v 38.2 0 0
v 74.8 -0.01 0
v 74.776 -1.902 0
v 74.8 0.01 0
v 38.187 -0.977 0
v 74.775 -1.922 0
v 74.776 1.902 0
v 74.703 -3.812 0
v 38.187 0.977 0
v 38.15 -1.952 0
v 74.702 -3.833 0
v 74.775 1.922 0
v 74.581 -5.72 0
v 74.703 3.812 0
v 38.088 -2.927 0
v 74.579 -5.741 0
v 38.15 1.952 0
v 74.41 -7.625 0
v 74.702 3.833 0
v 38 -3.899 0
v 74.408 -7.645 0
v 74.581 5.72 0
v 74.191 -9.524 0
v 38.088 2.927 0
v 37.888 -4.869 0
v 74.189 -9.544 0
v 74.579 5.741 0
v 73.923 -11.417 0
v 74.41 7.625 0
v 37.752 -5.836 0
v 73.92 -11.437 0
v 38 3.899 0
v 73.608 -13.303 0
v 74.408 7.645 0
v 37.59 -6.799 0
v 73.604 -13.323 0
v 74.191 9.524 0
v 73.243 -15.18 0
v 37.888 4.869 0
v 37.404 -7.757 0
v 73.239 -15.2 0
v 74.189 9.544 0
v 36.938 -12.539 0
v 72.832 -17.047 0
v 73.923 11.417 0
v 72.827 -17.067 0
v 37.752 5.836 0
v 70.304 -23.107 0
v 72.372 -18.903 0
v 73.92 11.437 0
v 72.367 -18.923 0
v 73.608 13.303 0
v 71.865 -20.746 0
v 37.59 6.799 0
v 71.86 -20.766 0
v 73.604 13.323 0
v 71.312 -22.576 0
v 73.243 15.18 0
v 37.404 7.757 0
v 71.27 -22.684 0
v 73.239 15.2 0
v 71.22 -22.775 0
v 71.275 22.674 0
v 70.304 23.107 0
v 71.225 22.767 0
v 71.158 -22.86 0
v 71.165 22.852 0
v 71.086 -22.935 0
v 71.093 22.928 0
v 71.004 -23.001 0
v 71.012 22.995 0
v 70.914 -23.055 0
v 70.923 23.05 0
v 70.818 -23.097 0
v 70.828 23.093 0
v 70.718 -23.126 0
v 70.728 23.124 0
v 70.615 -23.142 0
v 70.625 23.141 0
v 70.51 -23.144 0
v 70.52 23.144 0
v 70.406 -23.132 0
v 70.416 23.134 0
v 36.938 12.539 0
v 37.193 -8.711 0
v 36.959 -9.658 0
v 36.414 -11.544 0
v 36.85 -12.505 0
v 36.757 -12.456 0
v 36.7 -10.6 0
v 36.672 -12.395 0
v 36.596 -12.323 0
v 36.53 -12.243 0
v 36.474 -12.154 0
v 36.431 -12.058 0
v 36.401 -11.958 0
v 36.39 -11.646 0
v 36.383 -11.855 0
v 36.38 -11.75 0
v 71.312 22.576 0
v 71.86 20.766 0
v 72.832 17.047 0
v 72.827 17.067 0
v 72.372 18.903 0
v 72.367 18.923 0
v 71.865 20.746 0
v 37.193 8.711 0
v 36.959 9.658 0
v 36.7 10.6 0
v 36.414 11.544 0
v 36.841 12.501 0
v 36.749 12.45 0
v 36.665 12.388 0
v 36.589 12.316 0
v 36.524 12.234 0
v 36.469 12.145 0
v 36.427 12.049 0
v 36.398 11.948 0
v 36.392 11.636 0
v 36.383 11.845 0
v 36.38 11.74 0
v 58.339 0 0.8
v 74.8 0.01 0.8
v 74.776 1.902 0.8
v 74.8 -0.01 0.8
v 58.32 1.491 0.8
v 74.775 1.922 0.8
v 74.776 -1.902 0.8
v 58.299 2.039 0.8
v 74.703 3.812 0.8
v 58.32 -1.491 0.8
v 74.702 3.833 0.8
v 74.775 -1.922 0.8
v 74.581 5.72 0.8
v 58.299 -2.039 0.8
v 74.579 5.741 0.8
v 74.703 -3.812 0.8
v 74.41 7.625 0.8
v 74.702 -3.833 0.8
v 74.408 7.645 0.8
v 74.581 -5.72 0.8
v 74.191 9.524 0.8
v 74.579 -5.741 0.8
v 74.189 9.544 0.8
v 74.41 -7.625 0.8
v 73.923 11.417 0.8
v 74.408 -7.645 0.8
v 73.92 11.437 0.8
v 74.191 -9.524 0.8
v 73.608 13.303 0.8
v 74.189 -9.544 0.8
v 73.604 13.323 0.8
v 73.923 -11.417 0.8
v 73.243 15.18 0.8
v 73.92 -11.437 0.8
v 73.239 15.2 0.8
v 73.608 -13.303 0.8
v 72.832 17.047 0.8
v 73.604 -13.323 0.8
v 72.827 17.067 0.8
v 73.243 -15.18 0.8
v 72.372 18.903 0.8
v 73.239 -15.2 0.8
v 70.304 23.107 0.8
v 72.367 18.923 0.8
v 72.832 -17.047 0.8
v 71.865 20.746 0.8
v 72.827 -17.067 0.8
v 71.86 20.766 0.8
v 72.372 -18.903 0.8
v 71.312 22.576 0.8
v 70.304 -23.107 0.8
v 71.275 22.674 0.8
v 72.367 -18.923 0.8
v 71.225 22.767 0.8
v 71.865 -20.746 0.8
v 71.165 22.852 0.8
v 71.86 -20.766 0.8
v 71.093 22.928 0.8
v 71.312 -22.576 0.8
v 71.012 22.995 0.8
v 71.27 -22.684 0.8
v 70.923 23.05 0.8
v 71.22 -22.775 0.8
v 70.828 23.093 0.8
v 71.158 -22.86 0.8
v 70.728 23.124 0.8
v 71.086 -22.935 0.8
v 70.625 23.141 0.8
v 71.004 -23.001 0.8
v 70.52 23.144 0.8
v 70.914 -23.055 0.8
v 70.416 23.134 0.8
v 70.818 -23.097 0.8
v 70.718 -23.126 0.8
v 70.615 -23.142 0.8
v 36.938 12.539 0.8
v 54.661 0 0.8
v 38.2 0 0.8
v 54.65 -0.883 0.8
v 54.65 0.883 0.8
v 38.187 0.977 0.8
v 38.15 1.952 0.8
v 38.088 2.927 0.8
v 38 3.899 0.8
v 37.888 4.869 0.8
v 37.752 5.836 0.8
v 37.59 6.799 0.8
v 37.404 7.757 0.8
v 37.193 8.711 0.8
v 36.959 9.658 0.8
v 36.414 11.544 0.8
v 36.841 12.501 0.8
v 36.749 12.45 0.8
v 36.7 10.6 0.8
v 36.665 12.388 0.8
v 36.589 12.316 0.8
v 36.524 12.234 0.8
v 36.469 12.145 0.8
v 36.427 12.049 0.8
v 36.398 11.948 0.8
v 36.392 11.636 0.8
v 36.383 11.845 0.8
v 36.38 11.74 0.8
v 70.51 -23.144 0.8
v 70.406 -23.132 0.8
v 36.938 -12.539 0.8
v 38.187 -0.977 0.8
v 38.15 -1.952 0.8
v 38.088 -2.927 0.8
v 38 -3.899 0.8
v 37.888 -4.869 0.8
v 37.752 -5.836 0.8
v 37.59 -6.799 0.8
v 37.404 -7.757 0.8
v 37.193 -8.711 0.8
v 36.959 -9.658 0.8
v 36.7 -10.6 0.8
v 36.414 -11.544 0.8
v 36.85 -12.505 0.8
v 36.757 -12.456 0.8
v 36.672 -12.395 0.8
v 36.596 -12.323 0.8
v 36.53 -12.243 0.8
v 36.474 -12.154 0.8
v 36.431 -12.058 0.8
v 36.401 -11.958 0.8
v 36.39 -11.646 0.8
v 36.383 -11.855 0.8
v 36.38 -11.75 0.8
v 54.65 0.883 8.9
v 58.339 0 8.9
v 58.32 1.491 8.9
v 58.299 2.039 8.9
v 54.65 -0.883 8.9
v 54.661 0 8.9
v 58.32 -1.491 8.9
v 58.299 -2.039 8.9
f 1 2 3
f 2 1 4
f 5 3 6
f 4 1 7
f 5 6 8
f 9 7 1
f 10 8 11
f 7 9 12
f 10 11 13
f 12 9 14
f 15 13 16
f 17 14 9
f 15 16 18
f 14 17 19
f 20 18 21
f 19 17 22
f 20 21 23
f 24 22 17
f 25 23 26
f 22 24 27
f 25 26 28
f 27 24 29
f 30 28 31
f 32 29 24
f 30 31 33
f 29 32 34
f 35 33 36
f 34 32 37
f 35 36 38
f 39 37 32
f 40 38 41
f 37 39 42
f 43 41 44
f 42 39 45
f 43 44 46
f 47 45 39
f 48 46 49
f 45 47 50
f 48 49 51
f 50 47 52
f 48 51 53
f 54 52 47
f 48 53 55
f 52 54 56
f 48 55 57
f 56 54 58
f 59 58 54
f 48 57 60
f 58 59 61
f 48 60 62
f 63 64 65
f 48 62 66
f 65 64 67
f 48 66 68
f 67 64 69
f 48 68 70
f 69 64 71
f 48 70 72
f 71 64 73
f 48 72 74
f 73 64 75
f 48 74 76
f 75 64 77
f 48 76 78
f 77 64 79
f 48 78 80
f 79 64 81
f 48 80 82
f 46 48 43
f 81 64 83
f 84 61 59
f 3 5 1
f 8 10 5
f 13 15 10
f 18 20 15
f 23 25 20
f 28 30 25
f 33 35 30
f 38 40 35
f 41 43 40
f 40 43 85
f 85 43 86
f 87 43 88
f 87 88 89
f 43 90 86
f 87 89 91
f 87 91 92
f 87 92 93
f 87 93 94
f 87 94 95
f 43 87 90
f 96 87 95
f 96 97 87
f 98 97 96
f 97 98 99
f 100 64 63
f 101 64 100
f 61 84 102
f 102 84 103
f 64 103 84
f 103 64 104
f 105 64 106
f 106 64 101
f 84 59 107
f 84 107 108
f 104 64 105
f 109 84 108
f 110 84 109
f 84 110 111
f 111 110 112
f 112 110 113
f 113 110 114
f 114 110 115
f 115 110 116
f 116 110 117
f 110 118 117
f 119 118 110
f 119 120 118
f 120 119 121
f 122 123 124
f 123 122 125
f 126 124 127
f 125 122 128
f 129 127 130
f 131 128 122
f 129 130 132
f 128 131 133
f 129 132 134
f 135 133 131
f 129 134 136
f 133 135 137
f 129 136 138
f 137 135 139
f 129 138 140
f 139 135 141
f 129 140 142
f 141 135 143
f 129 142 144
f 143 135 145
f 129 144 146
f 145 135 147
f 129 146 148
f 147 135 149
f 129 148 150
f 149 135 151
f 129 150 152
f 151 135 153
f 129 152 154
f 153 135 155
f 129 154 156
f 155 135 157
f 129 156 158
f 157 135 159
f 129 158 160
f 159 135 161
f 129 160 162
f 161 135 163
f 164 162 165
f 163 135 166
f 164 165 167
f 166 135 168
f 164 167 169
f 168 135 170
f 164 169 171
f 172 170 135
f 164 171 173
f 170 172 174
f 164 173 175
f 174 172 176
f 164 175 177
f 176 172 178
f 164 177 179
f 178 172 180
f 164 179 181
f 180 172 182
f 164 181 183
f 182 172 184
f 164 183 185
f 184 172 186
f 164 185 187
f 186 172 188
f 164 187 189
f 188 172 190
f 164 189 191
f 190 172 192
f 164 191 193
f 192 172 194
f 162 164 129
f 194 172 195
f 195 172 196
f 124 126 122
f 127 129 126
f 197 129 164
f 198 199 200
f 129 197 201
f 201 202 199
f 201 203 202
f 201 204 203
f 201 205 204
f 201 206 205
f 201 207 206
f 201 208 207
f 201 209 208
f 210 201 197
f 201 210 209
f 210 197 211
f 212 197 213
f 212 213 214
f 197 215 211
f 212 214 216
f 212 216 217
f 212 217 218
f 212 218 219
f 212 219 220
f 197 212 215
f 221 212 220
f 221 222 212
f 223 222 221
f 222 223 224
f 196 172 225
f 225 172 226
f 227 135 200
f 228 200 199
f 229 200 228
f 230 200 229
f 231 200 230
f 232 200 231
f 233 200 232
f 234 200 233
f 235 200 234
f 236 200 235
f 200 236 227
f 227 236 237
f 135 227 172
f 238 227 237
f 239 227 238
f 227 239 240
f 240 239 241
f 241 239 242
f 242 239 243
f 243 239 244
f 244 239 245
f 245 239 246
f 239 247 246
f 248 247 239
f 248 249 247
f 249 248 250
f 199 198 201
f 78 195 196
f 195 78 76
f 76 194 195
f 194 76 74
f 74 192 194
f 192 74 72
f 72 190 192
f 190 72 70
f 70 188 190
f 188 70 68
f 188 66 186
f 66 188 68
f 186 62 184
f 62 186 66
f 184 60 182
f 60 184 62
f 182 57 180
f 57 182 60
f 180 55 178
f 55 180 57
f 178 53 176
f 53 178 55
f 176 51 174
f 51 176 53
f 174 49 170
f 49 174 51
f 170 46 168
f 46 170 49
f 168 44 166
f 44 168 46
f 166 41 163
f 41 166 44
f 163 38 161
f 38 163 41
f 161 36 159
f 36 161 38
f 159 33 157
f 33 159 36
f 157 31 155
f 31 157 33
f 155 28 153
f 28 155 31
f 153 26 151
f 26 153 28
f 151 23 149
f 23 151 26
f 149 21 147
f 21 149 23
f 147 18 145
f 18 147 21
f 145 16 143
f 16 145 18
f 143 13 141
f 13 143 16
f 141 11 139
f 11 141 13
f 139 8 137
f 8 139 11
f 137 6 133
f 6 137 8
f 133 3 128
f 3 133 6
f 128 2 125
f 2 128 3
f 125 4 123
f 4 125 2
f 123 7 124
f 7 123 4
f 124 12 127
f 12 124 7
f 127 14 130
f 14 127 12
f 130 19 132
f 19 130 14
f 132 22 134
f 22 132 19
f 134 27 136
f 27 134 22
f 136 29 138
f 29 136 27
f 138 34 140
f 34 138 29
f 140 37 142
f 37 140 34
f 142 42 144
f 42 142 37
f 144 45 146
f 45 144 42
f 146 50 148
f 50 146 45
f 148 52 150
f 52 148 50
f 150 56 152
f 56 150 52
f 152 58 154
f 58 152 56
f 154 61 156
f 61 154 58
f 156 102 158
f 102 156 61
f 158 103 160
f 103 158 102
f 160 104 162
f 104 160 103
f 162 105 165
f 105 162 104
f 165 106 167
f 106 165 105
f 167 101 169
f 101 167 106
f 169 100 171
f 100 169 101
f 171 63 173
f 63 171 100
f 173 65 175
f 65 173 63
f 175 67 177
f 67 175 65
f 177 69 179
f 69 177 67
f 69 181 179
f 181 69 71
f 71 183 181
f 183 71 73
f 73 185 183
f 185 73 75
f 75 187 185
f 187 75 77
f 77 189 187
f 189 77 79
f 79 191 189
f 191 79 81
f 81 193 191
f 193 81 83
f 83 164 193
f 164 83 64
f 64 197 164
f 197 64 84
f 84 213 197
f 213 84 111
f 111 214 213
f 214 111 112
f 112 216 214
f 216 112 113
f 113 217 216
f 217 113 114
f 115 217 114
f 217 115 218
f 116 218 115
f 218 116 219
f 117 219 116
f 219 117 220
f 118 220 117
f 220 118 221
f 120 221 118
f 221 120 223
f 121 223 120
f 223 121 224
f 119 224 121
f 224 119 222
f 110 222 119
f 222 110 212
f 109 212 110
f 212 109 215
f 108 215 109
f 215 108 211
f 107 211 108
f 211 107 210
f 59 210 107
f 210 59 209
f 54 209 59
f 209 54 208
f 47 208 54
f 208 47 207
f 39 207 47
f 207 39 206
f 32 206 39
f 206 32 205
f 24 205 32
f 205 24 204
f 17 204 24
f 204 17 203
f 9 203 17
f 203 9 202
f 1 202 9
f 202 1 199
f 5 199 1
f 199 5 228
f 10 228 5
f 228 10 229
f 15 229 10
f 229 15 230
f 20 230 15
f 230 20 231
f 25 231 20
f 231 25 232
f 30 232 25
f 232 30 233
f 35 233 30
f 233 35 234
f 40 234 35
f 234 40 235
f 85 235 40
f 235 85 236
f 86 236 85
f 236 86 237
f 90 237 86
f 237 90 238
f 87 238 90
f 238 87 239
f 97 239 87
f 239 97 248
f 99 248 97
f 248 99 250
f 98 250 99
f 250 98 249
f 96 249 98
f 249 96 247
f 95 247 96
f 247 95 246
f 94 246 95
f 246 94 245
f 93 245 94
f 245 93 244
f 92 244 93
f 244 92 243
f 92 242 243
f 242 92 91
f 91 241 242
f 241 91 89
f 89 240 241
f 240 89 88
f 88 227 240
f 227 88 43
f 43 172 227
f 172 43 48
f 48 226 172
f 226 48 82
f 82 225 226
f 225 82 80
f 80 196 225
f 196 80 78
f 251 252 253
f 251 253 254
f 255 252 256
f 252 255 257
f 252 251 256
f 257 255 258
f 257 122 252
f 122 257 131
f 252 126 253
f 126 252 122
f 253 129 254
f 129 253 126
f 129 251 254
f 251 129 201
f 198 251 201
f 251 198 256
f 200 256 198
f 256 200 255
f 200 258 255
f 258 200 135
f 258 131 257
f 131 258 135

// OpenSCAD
// file: parameters.scad
// =============================================================================
// Gen-BV — nightly 2026-10-10 (physics_scorer, honest magpylib watts)
// Fewer, wider-spaced poles: 6 Ø20 per rotor (12 of the 16) on an R57 ring over nine 35.2° bobbins (r 39–74 mm, 15.7 mm build). Wider pole pitch means less pole-to-pole leakage and bigger coils, but the electrical frequency drops 25 % and 4 Ø20 sit idle; diametric Ø5 assists lowered the score here, so none are fitted. The scorer puts it at about 62 % of Gen-BR.
// Clocking 0 deg (magnets N facing S) + D-flat keyed bore + index notch + flip-symmetric hole map.
// Windable 2-piece bobbin; turns = physics_scorer turns_fit; copper only between flanges.
// Steel back-iron: 2× Ø142 × 4.76 mm (3/16") mild-steel discs (steel_backiron_disc.dxf); magnets sit ON the steel
// (through-pockets) -> score with --back-iron. Night 2026-10-10.
// =============================================================================
topology            = "dual_rotor";

// --- Wire / winding (physics_scorer winding-fit) -------------------------------
wire_awg            = 26;
wire_od             = 0.45;     // insulated OD mm (bare 0.405)
fill_realistic      = 0.65;     // insulated-wire area / window (DENSE layered wind with a jig; scorer cap 0.65)
turns               = 518;       // = physics_scorer turns_fit (do NOT raise)
coil_former_type    = "bobbin";
coil_core_inset     = 15.66;     // radial copper build: hub = copper boundary inset by this
wind_build_axial    = 0.0;      // nothing proud of the flanges
wind_build_radial   = 0.0;

// --- Bobbin (base + lid) ---------------------------------------------------------
coil_id_r           = 39.00;    // copper boundary sector
coil_od_r           = 74.00;
span_deg            = 35.15;    // = pitch - 2*asin((wall+0.85)/coil_id_r) -> >=1.2 mm stator web
former_web          = 8.10;     // copper height between flanges (TALL copper: steel keeps Bz up)
flange_t            = 0.80;     // >= 0.8 mm FDM wall rule (tall winds push on the flanges)
wall                = 0.80;     // flange lip beyond copper
former_bare_h       = former_web + 2 * flange_t;
coil_envelope_h     = former_bare_h + 2 * wind_build_axial;
tab_w               = 7.0;
tab_len             = 7.0;
tab_h               = former_bare_h / 2;
pin_d               = 1.9;      // 1.75 mm filament locating pin
coil_mount_r        = coil_od_r + 0.2 + 4.0;
lead_y              = 1.6;
lead_slot_w         = 0.9;
lead_groove_d       = 0.6;

// --- Gap -------------------------------------------------------------------------
run_clear           = 0.50;     // rotor face -> flange
gap_spacer_h        = run_clear + wind_build_axial;
m2m                 = coil_envelope_h + 2 * run_clear;   // rotor face to rotor face (= gap_sleeve length)

// --- Stator ----------------------------------------------------------------------
coil_stations       = 9;
bay_clear           = 0.25;
stator_thick        = former_bare_h;                        // bobbins flush both faces
stator_od           = 166;
shaft_clear_stator  = 14.0;     // stator is static; gap sleeve OD 12 spins inside

// --- Rotor(s) --------------------------------------------------------------------
magnet_Br           = 1.43;     // N52
magnet_d_large      = 20.0;
magnet_h_large      = 5.0;      // one O20x5 per pocket
magnet_h_small      = 5.0;      // unused: no O5 pockets in this kit
halbach_magnetisation = "none";  // NO O5 assist magnets in this kit (scan: they lower the 4-pole score)
rotor_b_same_axis   = true;     // same-index magnets share one axis: N faces S across the gap
large_pocket_d      = 20.3;
small_pocket_d      = 5.3;
pocket_h            = 5.00;     // THROUGH the carrier: magnet back face sits on the steel disc (FLUSH seat: carrier = magnet height, magnet face level with the rotor face)
large_n             = 6;
R_large             = 57.0;
small_r_list        = [];       // no O5 pockets
carrier_od          = 142.0;
carrier_thick       = pocket_h;
hub_h               = 12.0;     // > steel_t + insert: radial set-screw clears the steel
hub_od              = 24.0;     // slim hub so the M4 brace rods fit at R~18 inside the coil ring
hub_insert_d        = 4.0;      // M3 heat-set insert, radial, bears on the D-flat
rotor_b_offset_deg  = 0.0;      // CLOCKING: magnets directly opposite
shaft_key           = "dflat";
dflat_depth         = 0.5;      // 8 mm shaft with 0.5 mm flat (7.5 across flat)
index_notch_d       = 3.0;

// --- Steel back-iron (buyable laser-cut) -------------------------------------------
steel_t             = 4.76;      // mild steel thickness (image method ignores it; sized from steel_flux.py so the return path stays well below saturation)
steel_center_hole   = 26.0;     // slips over the rotor hub (OD 24)
steel_od            = carrier_od;   // steel disc OD = rotor carrier OD

// --- Modular MAX interface ----------------------------------------------------------
shaft_bore          = 8.35;
dflat_x             = 4.0 - dflat_depth + (shaft_bore - 8.0) / 2;
bearing_d           = 21.85;
bearing_h           = 7.2;
m3_clear            = 3.5;
bolt_r_inner        = 30.0;     // M3 steel-disc clamp bolts (inside the magnet ring)
bolt_n_inner        = 4;
bolt_inner_angles   = [0, 90, 180, 270];
bolt_r_outer        = 66.0;     // second M3 steel-disc clamp ring
bolt_outer_angles   = [15, 165, 195, 345];
flange_bolt_r       = 77.0;     // frame rods: OUTSIDE the rotor OD (rotors spin inside them)
flange_bolt_n       = 9;
flange_bolt_offset  = 20.00;    // between coil stations -> never cuts a lead groove/tab
brace_r             = 18.0;
brace_d             = 4.3;      // temporary M4 jack rods (assembly only)
brace_n             = 4;
brace_angles        = [45, 135, 225, 315];          // flip-symmetric

spacer_pad_od       = 14.0;
spacer_pad_id       = m3_clear;
endbell_od          = 164.0;
endbell_thick       = 8.0;
endbell_shaft_clear = 10.0;
collar_h            = 10.0;
standoff_od         = 9.0;
frame_standoff_h    = run_clear + carrier_thick + hub_h + collar_h + 2.0;
sleeve_od           = 12.0;
plate_max_mm        = 410;

$fn = 64;
// main file
// Gen-BV — bobbin BASE (bottom flange + hub). Print x9, flange down. Wind 26 AWG x 518 t around
// the hub with the LID glued on (coil_lid.stl). Copper lives ONLY between the flanges (no proud winds).
include <parameters.scad>;
$fn = 48;
module sector_2d(r_in, r_out, ang) {
    polygon([
        for (a = [-ang/2 : ang/24 : ang/2]) [r_in*cos(a), r_in*sin(a)],
        for (a = [ang/2 : -ang/24 : -ang/2]) [r_out*cos(a), r_out*sin(a)]
    ]);
}
module footprint_2d() { offset(r=wall) sector_2d(coil_id_r, coil_od_r, span_deg); }
module hub_2d()       { offset(delta=-coil_core_inset) sector_2d(coil_id_r, coil_od_r, span_deg); }

union() {
    linear_extrude(flange_t) footprint_2d();
    translate([0, 0, flange_t - 0.01]) linear_extrude(former_web + 0.01) hub_2d();
}
